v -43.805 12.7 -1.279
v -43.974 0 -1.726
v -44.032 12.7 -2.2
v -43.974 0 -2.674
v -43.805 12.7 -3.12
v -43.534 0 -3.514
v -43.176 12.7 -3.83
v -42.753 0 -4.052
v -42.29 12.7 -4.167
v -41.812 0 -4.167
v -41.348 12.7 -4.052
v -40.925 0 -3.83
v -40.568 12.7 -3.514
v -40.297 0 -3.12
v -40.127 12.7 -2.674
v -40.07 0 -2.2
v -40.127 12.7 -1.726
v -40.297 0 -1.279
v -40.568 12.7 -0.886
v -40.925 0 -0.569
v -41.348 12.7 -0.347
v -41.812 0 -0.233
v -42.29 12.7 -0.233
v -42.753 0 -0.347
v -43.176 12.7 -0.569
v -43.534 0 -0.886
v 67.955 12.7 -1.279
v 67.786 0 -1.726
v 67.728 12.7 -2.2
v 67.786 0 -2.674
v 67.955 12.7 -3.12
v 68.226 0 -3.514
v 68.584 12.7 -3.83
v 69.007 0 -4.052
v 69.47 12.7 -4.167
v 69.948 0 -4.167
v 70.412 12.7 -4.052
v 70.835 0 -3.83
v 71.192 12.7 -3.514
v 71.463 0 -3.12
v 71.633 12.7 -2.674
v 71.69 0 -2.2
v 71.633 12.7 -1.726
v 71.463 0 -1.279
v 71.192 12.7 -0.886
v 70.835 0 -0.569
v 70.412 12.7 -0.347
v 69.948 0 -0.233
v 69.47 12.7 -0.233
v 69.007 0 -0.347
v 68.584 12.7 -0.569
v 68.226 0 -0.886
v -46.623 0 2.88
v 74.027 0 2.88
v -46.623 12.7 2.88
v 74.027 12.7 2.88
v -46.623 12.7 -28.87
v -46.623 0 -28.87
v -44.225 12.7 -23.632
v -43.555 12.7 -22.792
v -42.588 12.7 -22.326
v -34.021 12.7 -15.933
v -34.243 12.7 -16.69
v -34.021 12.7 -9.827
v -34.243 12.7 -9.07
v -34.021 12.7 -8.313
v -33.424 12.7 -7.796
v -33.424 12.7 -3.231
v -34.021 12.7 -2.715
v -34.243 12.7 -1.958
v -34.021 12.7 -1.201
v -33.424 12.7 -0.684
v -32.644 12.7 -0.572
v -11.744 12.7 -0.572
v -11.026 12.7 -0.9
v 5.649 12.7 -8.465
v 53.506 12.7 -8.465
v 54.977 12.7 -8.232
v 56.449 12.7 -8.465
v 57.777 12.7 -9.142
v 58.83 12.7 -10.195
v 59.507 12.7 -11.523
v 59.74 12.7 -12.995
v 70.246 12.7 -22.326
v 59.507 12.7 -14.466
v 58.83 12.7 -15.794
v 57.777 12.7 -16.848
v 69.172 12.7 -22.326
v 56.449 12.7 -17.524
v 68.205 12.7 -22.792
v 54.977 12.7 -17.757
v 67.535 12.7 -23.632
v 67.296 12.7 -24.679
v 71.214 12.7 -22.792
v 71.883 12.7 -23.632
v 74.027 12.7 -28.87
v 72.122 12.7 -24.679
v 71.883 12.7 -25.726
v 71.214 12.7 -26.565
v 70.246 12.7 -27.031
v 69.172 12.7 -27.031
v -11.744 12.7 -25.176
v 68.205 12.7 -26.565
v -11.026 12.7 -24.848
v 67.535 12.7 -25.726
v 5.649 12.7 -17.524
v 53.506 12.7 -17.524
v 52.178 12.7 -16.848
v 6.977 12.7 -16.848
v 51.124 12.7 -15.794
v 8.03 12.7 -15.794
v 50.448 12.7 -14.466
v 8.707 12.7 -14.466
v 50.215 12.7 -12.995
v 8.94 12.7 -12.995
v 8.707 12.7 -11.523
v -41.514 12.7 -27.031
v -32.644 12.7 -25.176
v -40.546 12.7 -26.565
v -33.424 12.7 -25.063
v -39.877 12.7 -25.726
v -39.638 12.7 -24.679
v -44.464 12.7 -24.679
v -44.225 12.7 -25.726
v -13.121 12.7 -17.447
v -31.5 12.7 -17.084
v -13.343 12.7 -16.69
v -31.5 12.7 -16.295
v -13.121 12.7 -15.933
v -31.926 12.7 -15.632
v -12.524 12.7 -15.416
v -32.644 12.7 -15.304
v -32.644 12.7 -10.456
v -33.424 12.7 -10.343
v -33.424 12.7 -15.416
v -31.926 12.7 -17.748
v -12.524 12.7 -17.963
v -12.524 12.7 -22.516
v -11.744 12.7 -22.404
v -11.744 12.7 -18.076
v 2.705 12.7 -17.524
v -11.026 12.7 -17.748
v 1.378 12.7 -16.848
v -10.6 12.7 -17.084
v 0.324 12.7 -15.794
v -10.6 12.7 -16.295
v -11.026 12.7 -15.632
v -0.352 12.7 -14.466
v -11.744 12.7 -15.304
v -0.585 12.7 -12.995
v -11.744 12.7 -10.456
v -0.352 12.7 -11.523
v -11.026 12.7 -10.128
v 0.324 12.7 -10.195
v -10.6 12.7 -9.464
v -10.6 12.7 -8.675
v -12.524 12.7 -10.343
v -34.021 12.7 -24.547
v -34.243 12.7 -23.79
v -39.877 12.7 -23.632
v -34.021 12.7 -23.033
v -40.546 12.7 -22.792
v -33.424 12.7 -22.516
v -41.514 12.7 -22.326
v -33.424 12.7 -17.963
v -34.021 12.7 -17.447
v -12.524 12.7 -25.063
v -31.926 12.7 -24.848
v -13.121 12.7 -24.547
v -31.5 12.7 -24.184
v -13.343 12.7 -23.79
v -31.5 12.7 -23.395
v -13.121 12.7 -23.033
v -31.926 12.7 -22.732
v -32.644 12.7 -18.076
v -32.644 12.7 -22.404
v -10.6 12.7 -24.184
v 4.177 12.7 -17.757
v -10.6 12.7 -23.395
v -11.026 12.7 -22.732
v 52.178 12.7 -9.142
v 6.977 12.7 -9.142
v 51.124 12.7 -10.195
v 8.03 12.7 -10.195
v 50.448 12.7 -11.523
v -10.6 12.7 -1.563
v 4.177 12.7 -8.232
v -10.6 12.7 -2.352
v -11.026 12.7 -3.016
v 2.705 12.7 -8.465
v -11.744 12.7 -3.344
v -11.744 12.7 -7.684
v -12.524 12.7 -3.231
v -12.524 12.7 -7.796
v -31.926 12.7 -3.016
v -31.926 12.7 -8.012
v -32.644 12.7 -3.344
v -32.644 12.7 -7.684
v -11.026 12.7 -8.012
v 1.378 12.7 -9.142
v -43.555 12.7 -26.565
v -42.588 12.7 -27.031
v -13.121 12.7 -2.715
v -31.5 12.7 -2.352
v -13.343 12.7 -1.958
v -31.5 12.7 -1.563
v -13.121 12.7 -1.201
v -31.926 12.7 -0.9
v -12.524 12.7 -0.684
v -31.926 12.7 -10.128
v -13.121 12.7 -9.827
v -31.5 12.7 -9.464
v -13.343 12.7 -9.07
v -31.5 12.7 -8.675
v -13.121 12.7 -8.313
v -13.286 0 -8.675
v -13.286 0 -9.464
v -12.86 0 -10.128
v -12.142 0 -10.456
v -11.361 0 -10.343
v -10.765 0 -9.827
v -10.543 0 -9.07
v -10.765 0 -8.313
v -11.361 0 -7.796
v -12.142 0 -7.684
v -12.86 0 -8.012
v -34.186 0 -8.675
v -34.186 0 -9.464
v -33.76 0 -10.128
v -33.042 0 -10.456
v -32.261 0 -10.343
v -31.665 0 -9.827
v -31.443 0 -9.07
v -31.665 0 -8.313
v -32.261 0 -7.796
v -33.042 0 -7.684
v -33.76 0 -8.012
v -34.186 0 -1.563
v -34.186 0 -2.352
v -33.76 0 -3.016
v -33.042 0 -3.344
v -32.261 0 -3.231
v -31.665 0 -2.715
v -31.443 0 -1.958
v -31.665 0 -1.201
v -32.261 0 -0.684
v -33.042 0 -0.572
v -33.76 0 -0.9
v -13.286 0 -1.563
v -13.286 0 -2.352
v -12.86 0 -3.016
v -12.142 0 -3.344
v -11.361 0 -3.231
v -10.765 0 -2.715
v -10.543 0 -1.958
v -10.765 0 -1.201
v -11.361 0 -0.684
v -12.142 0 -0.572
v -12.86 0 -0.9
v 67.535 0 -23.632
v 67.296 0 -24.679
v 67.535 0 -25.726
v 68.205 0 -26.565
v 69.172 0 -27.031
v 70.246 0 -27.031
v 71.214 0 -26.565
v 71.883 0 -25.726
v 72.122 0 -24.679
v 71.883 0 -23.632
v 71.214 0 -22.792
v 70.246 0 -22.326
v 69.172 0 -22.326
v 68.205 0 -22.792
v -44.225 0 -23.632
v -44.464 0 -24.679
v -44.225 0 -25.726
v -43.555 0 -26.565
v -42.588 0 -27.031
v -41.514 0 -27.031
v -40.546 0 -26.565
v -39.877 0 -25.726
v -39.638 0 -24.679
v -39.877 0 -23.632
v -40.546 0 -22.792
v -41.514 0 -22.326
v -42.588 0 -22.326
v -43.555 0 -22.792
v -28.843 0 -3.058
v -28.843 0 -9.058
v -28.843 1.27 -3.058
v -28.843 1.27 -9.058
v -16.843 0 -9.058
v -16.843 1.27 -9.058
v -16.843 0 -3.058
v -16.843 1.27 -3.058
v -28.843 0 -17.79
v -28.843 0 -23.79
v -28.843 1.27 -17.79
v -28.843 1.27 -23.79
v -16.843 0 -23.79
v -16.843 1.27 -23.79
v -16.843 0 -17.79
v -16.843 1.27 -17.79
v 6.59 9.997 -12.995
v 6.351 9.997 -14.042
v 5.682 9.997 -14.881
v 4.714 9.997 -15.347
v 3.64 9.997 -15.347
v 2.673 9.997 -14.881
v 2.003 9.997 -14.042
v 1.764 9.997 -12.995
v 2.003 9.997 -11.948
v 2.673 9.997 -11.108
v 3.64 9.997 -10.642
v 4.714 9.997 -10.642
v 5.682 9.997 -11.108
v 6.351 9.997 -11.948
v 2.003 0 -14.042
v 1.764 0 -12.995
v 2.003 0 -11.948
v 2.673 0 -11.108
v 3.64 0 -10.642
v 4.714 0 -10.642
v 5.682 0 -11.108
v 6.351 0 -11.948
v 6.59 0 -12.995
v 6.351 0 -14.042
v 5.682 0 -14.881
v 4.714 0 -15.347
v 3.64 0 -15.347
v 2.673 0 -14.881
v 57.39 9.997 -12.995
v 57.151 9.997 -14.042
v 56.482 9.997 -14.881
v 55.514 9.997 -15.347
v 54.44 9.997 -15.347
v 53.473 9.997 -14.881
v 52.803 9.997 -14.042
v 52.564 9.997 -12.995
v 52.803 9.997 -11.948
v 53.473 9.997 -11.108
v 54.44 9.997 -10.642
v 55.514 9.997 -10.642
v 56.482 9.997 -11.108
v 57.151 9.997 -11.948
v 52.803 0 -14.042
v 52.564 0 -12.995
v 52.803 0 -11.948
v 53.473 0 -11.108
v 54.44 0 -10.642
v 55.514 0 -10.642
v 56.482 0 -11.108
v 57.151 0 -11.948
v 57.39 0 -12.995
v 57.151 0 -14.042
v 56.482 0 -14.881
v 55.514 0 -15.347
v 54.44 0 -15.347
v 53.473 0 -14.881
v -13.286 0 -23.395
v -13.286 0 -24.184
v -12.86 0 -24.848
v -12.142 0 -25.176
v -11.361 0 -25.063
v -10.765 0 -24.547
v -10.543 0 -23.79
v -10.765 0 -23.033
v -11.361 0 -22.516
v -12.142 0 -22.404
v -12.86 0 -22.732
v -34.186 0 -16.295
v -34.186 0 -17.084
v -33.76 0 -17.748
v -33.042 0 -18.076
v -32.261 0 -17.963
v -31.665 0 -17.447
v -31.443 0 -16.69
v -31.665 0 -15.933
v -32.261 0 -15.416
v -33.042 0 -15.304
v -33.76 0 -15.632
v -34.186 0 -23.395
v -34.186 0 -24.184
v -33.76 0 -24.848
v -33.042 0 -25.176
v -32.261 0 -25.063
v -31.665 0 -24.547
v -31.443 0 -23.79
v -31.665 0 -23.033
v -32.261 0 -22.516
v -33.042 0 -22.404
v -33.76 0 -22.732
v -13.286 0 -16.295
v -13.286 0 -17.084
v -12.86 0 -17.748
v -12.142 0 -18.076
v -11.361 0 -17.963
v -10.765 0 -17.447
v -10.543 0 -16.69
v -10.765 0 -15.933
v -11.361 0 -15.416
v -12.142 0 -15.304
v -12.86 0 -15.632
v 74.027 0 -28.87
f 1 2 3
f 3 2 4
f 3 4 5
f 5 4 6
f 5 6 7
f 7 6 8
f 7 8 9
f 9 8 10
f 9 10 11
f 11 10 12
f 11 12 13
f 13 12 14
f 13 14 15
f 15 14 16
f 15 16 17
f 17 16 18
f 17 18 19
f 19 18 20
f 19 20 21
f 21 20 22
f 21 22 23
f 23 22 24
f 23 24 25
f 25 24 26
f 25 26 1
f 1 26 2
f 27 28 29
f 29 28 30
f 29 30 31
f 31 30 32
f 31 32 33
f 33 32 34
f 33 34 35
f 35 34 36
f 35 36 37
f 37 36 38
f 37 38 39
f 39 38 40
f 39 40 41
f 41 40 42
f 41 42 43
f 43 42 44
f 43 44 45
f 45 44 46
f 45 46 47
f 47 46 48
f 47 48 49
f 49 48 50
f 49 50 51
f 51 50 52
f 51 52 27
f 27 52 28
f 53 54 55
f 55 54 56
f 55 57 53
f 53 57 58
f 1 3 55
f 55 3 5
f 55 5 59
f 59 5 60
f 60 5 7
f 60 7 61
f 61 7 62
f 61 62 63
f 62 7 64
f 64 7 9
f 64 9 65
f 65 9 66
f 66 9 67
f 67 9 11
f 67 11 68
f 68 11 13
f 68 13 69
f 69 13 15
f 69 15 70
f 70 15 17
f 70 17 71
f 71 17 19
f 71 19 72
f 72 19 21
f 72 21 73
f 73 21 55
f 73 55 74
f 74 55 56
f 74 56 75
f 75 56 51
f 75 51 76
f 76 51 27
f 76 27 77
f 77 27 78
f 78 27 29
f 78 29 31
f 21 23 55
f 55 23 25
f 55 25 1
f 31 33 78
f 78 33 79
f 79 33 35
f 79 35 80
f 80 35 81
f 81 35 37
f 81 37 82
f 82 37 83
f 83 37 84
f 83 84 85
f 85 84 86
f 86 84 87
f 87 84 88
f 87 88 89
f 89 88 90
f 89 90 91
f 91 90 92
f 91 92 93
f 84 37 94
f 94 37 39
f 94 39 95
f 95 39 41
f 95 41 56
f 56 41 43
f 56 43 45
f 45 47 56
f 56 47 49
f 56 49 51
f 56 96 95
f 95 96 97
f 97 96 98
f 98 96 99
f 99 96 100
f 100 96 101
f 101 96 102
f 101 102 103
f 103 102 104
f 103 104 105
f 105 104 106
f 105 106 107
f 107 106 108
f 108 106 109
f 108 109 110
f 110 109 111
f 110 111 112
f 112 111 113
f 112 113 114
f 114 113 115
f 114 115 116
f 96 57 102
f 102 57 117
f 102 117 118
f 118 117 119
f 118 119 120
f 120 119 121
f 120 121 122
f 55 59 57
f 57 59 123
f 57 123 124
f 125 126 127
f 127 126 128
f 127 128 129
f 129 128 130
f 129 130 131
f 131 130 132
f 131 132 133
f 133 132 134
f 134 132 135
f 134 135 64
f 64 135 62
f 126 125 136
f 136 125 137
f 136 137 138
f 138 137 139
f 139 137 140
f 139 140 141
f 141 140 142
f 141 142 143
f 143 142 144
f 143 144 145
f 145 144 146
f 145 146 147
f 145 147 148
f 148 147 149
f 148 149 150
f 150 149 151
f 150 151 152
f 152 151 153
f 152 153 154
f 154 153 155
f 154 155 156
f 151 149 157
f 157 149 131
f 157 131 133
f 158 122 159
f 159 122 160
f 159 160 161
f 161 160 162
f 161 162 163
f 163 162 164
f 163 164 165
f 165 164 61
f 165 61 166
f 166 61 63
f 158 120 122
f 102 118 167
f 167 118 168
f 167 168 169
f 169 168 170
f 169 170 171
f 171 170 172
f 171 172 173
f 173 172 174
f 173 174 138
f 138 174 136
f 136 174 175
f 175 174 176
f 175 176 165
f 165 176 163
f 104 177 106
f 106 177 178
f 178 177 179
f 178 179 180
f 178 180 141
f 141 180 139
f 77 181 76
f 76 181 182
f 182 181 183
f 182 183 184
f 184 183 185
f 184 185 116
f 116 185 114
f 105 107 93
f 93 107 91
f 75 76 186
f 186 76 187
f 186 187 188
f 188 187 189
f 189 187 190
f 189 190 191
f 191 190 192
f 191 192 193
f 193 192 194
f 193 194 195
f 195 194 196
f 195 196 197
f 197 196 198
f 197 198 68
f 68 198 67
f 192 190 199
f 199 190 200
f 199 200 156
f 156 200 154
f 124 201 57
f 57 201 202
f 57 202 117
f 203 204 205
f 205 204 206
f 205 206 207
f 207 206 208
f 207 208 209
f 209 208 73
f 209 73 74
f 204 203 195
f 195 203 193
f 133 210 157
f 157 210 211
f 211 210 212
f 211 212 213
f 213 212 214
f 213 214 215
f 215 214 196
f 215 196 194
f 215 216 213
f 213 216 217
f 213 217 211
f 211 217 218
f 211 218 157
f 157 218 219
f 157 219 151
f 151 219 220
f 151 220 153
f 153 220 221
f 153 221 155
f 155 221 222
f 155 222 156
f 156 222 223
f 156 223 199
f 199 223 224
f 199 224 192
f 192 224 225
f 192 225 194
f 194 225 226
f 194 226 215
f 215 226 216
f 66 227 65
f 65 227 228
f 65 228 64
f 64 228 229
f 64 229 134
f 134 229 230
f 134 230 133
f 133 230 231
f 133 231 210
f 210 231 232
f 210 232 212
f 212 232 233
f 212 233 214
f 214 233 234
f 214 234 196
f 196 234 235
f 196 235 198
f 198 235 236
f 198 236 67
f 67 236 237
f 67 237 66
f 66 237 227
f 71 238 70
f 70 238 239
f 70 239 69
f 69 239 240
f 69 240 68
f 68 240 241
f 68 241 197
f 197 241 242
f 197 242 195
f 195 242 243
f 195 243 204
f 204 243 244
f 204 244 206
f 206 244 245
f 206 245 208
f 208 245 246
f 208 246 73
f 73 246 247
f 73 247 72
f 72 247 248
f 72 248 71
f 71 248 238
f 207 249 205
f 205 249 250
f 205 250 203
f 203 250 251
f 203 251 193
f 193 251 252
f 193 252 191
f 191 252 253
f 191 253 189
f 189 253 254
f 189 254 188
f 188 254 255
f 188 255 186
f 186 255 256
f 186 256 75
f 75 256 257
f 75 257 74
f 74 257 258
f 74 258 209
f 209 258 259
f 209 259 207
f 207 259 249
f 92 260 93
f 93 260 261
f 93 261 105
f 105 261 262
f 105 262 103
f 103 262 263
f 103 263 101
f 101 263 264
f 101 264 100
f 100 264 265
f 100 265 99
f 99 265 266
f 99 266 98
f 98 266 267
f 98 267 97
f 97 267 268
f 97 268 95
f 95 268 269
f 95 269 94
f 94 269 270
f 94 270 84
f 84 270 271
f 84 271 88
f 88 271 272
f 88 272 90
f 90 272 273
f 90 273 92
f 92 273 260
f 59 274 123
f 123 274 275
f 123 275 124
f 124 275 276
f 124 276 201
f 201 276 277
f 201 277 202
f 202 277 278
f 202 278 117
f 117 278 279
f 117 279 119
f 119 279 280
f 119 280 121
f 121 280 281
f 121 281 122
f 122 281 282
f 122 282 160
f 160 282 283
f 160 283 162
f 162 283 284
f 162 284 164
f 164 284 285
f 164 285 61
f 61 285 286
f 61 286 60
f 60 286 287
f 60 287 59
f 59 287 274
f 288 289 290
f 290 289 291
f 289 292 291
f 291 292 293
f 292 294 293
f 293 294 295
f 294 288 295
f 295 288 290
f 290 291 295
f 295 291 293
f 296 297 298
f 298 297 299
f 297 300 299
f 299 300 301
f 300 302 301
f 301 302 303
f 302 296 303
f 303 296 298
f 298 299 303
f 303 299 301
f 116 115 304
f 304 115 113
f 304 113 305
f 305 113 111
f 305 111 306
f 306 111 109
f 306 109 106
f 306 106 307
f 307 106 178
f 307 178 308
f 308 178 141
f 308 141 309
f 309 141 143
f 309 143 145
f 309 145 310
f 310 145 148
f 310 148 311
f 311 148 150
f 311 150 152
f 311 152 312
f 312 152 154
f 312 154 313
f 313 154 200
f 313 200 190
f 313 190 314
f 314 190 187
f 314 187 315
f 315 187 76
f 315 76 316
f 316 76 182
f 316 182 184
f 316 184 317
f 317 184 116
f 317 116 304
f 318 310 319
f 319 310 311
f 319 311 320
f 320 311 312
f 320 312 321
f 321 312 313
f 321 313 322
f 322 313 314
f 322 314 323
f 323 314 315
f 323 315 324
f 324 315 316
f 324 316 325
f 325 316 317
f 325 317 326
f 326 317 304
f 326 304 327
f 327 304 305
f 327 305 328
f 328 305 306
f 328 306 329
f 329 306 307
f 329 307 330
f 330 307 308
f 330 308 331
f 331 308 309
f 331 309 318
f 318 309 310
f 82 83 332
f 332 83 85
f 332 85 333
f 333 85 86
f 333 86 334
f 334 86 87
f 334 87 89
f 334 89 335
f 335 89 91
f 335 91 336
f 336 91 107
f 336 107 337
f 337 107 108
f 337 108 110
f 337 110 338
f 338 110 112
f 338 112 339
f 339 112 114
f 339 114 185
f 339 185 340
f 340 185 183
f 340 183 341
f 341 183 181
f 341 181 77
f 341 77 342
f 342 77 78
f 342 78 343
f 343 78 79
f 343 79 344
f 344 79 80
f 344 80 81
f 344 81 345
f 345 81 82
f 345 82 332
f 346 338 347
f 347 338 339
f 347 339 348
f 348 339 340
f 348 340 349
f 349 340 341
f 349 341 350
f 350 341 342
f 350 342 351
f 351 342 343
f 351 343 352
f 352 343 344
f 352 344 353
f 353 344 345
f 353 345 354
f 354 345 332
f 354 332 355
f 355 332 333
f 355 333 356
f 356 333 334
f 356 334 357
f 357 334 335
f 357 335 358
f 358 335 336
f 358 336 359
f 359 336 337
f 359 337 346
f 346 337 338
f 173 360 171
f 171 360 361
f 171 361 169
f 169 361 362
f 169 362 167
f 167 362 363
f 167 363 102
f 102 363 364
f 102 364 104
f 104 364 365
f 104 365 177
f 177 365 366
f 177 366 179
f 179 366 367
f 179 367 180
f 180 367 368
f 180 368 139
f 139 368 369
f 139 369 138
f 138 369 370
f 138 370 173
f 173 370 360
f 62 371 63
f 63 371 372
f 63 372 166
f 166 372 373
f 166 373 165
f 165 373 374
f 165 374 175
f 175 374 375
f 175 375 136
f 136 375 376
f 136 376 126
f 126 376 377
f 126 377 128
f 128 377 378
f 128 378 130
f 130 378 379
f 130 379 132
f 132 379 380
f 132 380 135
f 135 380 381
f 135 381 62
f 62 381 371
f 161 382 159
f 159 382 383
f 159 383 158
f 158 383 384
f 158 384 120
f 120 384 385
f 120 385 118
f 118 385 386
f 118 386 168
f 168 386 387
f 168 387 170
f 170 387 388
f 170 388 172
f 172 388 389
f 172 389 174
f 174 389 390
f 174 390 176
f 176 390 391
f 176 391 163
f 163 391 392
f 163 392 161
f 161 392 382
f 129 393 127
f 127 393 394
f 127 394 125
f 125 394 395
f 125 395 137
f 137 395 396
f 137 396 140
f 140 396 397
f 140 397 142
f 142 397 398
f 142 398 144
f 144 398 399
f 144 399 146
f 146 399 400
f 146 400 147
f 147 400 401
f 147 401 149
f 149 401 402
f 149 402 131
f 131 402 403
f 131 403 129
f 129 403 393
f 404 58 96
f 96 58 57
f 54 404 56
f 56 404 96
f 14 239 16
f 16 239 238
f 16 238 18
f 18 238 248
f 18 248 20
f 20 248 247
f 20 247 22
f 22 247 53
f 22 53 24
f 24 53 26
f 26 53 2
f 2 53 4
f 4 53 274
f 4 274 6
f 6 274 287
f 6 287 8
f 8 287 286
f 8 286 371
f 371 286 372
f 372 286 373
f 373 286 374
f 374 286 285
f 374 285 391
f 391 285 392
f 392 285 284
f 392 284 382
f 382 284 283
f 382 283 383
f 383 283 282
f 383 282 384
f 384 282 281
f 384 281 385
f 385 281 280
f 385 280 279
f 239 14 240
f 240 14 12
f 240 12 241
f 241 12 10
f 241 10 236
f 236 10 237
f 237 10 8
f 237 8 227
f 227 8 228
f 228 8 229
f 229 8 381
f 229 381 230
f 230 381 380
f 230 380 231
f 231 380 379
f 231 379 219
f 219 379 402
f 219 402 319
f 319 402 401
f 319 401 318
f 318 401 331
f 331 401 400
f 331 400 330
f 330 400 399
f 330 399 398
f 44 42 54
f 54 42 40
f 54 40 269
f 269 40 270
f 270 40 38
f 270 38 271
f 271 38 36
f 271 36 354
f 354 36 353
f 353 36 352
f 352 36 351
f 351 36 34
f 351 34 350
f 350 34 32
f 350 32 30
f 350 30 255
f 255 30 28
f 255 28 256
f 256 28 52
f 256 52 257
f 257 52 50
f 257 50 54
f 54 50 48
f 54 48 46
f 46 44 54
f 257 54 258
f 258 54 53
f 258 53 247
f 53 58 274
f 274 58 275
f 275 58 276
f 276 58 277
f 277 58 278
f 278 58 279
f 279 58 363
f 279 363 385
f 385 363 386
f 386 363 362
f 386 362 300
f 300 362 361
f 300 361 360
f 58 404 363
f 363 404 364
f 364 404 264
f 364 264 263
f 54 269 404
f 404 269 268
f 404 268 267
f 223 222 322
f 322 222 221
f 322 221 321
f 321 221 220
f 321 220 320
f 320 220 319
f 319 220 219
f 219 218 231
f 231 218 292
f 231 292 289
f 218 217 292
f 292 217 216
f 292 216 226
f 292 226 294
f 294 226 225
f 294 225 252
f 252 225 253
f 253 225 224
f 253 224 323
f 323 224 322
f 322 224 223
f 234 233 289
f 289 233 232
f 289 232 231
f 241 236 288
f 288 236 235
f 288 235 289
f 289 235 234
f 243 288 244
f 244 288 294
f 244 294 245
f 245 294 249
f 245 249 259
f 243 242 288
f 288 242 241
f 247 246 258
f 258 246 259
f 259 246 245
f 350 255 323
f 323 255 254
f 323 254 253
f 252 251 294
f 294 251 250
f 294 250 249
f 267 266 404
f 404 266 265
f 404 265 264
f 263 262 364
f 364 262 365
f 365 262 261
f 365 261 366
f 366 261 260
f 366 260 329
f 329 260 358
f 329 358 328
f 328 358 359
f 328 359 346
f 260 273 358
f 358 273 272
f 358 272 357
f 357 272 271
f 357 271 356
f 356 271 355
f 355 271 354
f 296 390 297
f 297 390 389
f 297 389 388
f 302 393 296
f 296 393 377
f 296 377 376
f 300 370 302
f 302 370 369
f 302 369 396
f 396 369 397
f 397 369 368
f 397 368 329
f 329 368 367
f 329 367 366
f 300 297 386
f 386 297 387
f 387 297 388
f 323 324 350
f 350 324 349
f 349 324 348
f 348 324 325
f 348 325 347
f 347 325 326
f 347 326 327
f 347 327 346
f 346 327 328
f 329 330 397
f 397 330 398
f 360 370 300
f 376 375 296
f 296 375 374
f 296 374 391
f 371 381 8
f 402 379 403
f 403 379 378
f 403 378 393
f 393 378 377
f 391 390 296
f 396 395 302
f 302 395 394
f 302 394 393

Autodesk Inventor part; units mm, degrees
ref_plane "YZ Plane" through (0, 0, 0) normal (1, 0, 0) x (0, 1, 0)
ref_plane "XZ Plane" through (0, 0, 0) normal (0, 1, 0) x (-1, 0, 0)
ref_plane "XY Plane" through (0, 0, 0) normal (0, 0, 1) x (1, 0, 0)
sketch "Sketch1" plane through (0, 0, 0) normal (0, 1, 0) x (-1, 0, 0)
  line L0 (46.6228, 34.6302) -> (-74.0272, 34.6302)
  line L1 (-74.0272, 34.6302) -> (-74.0272, -28.8698)
  line L2 (-74.0272, -28.8698) -> (46.6228, -28.8698)
  line L3 (46.6228, -28.8698) -> (46.6228, 34.6302)
  point P0 (0, 0)
  dimension "d0" = 120.65
  dimension "d1" = 63.5
extrude "Extrusion1" add sketch "Sketch1" along normal blind 12.7
sketch "Sketch4" plane through (0, 0, 0) normal (0, -1, 0) x (1, 0, 0)
  line L0 (74.0272, -28.8698) -> (-46.6228, -28.8698) projected
  line L1 (-28.8428, 23.5502) -> (-28.8428, 29.5502) projected
  line L2 (-46.6228, -28.8698) -> (-46.6228, 34.6302) projected
  point P0 (0, 0)
  point P1 (-32.8428, -16.6898)
  point P2 (-32.8428, -23.7898)
  point P3 (-11.9428, -23.7898)
  point P4 (-11.9428, -16.6898)
  dimension "d21" = 0
  dimension "d22" = 0
  dimension "d23" = 0
  dimension "d24" = 0
  dimension "d25" = 5.08
  dimension "d26" = 7.1
  dimension "d27" = 20.9
  dimension "d35" = 4
  dimension "d92" = 13.78
hole "Hole2" at (-32.8428, 0, -16.6898) at (-32.8428, 0, -23.7898) at (-11.9428, 0, -23.7898) at (-11.9428, 0, -16.6898) direction (0, 1, 0) diameter 2.8 depth 25.4 tip angle 118
sketch "Sketch6" plane through (0, 0, 0) normal (0, -1, 0) x (1, 0, 0)
  line L0 (-46.6228, 34.6302) -> (74.0272, 34.6302) projected
  line L1 (-46.6228, -28.8698) -> (-46.6228, 34.6302) projected
  line L2 (74.0272, -28.8698) -> (-46.6228, -28.8698) projected
  point P0 (0, 0)
  point P1 (69.7092, -24.6788)
  point P2 (-42.0508, -24.6788)
  point P3 (-42.0508, 30.4392)
  point P4 (69.7092, 30.4392)
  dimension "d43" = 0
  dimension "d44" = 0
  dimension "d46" = 111.76
  dimension "d47" = 0
  dimension "d48" = 0
  dimension "d50" = 4.191
  dimension "d51" = 4.572
  dimension "d91" = 4.191
hole "Hole4" at (69.7092, 0, -24.6788) at (-42.0508, 0, -24.6788) at (-42.0508, 0, 30.4392) at (69.7092, 0, 30.4392) direction (0, 1, 0) diameter 4.8 depth 25.4 tip angle 118
sketch "Sketch10" plane through (0, 12.7, 0) normal (0, 1, 0) x (1, 0, 0)
  circle A0 centre (54.9772, -18.7552) radius 2.413 projected
  circle A1 centre (4.1772, -18.7552) radius 2.413 projected
  line L0 (74.0272, 28.8698) -> (-46.6228, 28.8698) projected
  point P0 (0, 0)
  point P1 (4.1772, 12.9948)
  point P2 (54.9772, 12.9948)
  point P3 (66.6772, 28.8698)
  point P4 (-45.6228, 28.8698)
  dimension "d80" = 0
  dimension "d81" = 0
  dimension "d82" = 0
  dimension "d83" = 15.875
hole "Hole7" at (4.1772, 12.7, -12.9948) at (54.9772, 12.7, -12.9948) direction (0, -1, 0) diameter 4.826 end through all countersink diameter 9.525 countersink angle 82
sketch "Sketch11" plane through (0, 0, 0) normal (0, -1, 0) x (1, 0, 0)
  line L0 (-28.8428, -3.0578) -> (-16.8428, -3.0578)
  line L1 (-16.8428, -3.0578) -> (-16.8428, -9.0578)
  line L2 (-16.8428, -9.0578) -> (-28.8428, -9.0578)
  line L3 (-28.8428, -9.0578) -> (-28.8428, -3.0578)
  line L4 (-28.8428, -17.7898) -> (-16.8428, -17.7898)
  line L5 (-16.8428, -17.7898) -> (-16.8428, -23.7898)
  line L6 (-16.8428, -23.7898) -> (-28.8428, -23.7898)
  line L7 (-28.8428, -23.7898) -> (-28.8428, -17.7898)
  line L8 (-28.8428, 23.5502) -> (-28.8428, 29.5502) projected
  line L9 (-16.8428, 29.5502) -> (-16.8428, 23.5502) projected
  line L10 (74.0272, -28.8698) -> (-46.6228, -28.8698) projected
  point P0 (0, 0)
  dimension "d93" = 0
  dimension "d94" = 0
  dimension "d95" = 0
  dimension "d96" = 0
  dimension "d97" = 6
  dimension "d98" = 6
  dimension "d99" = 5.08
  dimension "d100" = 19.812
extrude "Extrusion4" cut sketch "Sketch11" against normal blind 1.27
sketch "Sketch12" plane through (0, 0, 0) normal (0, -1, 0) x (1, 0, 0)
  circle A0 centre (-42.0508, 30.4392) radius 2.4 projected
  circle A1 centre (69.7092, 30.4392) radius 2.4 projected
  circle A2 centre (69.7092, -24.6788) radius 2.4 projected
  circle A3 centre (-42.0508, -24.6788) radius 2.4 projected
  point P0 (0, 0)
hole "Hole8" at (-42.0508, 0, 30.4392) at (69.7092, 0, 30.4392) at (69.7092, 0, -24.6788) at (-42.0508, 0, -24.6788) direction (0, 1, 0) diameter 4.826 end through all
sketch "Sketch13" plane through (0, 0, 0) normal (0, -1, 0) x (1, 0, 0)
  circle A0 centre (-32.8428, -16.6898) radius 1.4 projected
  circle A1 centre (-32.8428, -23.7898) radius 1.4 projected
  circle A2 centre (-11.9428, -16.6898) radius 1.4 projected
  point P0 (0, 0)
  point P1 (-32.8428, -9.0698)
  point P2 (-32.8428, -1.9578)
  point P3 (-39.7887, 34.6302)
  point P4 (67.4471, 34.6302)
  point P5 (-11.9428, -9.0698)
  point P6 (-11.9428, -1.9578)
  dimension "d112" = 0
  dimension "d113" = 7.112
  dimension "d115" = 7.62
  dimension "d117" = 0
  dimension "d120" = 0
  dimension "d123" = 0
  dimension "d124" = 0
hole "Hole9" at (-32.8428, 0, -9.0698) at (-32.8428, 0, -1.9578) at (-11.9428, 0, -9.0698) at (-11.9428, 0, -1.9578) direction (0, 1, 0) diameter 2.8 end through all
sketch "Sketch15" plane through (0, 12.7, 0) normal (0, 1, 0) x (1, 0, 0)
  circle A0 centre (4.1772, -18.7552) radius 2.413 projected
  circle A1 centre (54.9772, -18.7552) radius 2.413 projected
  circle A2 centre (4.1772, -18.7552) radius 3.3734
  circle A3 centre (54.9772, -18.7552) radius 3.3734
  point P0 (0, 0)
  point P1 (4.1772, 12.9948)
  point P2 (54.9772, 12.9948)
  dimension "d140" = 6.7469
  dimension "d141" = 6.7469
extrude "Extrusion6" [suppressed]
sketch "Sketch16" plane through (0, 0, 0) normal (0, -1, 0) x (1, 0, 0)
  line L0 (-74.1492, 48.5934) -> (104.9801, 48.5934)
  line L1 (104.9801, 48.5934) -> (104.9801, 2.8802)
  line L2 (104.9801, 2.8802) -> (-74.1492, 2.8802)
  line L3 (-74.1492, 2.8802) -> (-74.1492, 48.5934)
  line L4 (-46.6228, 34.6302) -> (74.0272, 34.6302) projected
  point P0 (0, 0)
  dimension "d157" = 31.75
extrude "Extrusion7" cut sketch "Sketch16" against normal blind 25.4
sketch "Sketch17" plane through (0, 0, 0) normal (0, -1, 0) x (1, 0, 0)
  line L0 (74.0272, 2.8802) -> (-46.6228, 2.8802) projected
  line L1 (-46.6228, -28.8698) -> (-46.6228, 2.8802) projected
  line L2 (74.0272, -28.8698) -> (-46.6228, -28.8698) projected
  line L3 (74.0272, 2.8802) -> (74.0272, -28.8698) projected
  circle A0 centre (-11.9428, -9.0698) radius 1.4 projected
  circle A1 centre (-32.8428, -9.0698) radius 1.4 projected
  circle A2 centre (-32.8428, -1.9578) radius 1.4 projected
  circle A3 centre (-11.9428, -1.9578) radius 1.4 projected
  circle A4 centre (69.7092, -24.6788) radius 2.413 projected
  circle A5 centre (-42.0508, -24.6788) radius 2.413 projected
  line L4 (-28.8428, -9.0578) -> (-28.8428, -3.0578) projected
  line L5 (-28.8428, -3.0578) -> (-16.8428, -3.0578) projected
  line L6 (-16.8428, -3.0578) -> (-16.8428, -9.0578) projected
  line L7 (-16.8428, -9.0578) -> (-28.8428, -9.0578) projected
  line L8 (-28.8428, -23.7898) -> (-28.8428, -17.7898) projected
  line L9 (-28.8428, -17.7898) -> (-16.8428, -17.7898) projected
  line L10 (-16.8428, -17.7898) -> (-16.8428, -23.7898) projected
  line L11 (-16.8428, -23.7898) -> (-28.8428, -23.7898) projected
  circle A6 centre (4.1772, -12.9948) radius 2.413 projected
  circle A7 centre (54.9772, -12.9948) radius 2.413 projected
  circle A8 centre (-11.9428, -23.7898) radius 1.4 projected
  circle A9 centre (-32.8428, -16.6898) radius 1.4 projected
  circle A10 centre (-32.8428, -23.7898) radius 1.4 projected
  circle A11 centre (-11.9428, -16.6898) radius 1.4 projected
  circle A12 centre (-42.0508, -24.6788) radius 2.413 projected
  point P0 (0, 0)
  point P1 (-42.0508, -2.1998)
  point P2 (69.7092, -2.1998)
  dimension "d146" = 0
  dimension "d147" = 0
  dimension "d148" = 0
  dimension "d149" = 5.08
hole "Hole10" at (-42.0508, 0, -2.1998) at (69.7092, 0, -2.1998) direction (0, 1, 0) diameter 3.9624 end through all thread size "10-32 UNF" class "2B" standard "ANSI Unified Screw Threads"
equation "\"d1\" = 2 * TalonSRXWidth"
equation "\"d26\" = CanConBetweenTopHoles"
equation "\"d27\" = CanConBetweenSideHoles"
equation "\"d35\" = CanConHoleFromTopPin"
equation "\"d28\" = CanConHoleDiam"
equation "\"d52\" = LegoMainHole"
equation "\"d83\" = TalonSRXFromSide"
equation "\"d125\" = CanConHoleDiam"
equation "\"LegoMainHole\" = 4.8"
equation "\"TalonSRXWidth\" = 31.75"
equation "\"TalonSRXFromSide\" = 15.875"
equation "\"TalonSRXBetweenHoles\" = 50.8"
equation "\"CanConPinWidth\" = 6"
equation "\"CanConPinLength\" = 12"
equation "\"CanConBetweenSideHoles\" = 20.9"
equation "\"CanConBetweenTopHoles\" = 7.1"
equation "\"CanConHoleDiam\" = 2.8"
equation "\"CanConHoleFromTopPin\" = 4"
properties part number "OneTalonSRXPlateTwo"
